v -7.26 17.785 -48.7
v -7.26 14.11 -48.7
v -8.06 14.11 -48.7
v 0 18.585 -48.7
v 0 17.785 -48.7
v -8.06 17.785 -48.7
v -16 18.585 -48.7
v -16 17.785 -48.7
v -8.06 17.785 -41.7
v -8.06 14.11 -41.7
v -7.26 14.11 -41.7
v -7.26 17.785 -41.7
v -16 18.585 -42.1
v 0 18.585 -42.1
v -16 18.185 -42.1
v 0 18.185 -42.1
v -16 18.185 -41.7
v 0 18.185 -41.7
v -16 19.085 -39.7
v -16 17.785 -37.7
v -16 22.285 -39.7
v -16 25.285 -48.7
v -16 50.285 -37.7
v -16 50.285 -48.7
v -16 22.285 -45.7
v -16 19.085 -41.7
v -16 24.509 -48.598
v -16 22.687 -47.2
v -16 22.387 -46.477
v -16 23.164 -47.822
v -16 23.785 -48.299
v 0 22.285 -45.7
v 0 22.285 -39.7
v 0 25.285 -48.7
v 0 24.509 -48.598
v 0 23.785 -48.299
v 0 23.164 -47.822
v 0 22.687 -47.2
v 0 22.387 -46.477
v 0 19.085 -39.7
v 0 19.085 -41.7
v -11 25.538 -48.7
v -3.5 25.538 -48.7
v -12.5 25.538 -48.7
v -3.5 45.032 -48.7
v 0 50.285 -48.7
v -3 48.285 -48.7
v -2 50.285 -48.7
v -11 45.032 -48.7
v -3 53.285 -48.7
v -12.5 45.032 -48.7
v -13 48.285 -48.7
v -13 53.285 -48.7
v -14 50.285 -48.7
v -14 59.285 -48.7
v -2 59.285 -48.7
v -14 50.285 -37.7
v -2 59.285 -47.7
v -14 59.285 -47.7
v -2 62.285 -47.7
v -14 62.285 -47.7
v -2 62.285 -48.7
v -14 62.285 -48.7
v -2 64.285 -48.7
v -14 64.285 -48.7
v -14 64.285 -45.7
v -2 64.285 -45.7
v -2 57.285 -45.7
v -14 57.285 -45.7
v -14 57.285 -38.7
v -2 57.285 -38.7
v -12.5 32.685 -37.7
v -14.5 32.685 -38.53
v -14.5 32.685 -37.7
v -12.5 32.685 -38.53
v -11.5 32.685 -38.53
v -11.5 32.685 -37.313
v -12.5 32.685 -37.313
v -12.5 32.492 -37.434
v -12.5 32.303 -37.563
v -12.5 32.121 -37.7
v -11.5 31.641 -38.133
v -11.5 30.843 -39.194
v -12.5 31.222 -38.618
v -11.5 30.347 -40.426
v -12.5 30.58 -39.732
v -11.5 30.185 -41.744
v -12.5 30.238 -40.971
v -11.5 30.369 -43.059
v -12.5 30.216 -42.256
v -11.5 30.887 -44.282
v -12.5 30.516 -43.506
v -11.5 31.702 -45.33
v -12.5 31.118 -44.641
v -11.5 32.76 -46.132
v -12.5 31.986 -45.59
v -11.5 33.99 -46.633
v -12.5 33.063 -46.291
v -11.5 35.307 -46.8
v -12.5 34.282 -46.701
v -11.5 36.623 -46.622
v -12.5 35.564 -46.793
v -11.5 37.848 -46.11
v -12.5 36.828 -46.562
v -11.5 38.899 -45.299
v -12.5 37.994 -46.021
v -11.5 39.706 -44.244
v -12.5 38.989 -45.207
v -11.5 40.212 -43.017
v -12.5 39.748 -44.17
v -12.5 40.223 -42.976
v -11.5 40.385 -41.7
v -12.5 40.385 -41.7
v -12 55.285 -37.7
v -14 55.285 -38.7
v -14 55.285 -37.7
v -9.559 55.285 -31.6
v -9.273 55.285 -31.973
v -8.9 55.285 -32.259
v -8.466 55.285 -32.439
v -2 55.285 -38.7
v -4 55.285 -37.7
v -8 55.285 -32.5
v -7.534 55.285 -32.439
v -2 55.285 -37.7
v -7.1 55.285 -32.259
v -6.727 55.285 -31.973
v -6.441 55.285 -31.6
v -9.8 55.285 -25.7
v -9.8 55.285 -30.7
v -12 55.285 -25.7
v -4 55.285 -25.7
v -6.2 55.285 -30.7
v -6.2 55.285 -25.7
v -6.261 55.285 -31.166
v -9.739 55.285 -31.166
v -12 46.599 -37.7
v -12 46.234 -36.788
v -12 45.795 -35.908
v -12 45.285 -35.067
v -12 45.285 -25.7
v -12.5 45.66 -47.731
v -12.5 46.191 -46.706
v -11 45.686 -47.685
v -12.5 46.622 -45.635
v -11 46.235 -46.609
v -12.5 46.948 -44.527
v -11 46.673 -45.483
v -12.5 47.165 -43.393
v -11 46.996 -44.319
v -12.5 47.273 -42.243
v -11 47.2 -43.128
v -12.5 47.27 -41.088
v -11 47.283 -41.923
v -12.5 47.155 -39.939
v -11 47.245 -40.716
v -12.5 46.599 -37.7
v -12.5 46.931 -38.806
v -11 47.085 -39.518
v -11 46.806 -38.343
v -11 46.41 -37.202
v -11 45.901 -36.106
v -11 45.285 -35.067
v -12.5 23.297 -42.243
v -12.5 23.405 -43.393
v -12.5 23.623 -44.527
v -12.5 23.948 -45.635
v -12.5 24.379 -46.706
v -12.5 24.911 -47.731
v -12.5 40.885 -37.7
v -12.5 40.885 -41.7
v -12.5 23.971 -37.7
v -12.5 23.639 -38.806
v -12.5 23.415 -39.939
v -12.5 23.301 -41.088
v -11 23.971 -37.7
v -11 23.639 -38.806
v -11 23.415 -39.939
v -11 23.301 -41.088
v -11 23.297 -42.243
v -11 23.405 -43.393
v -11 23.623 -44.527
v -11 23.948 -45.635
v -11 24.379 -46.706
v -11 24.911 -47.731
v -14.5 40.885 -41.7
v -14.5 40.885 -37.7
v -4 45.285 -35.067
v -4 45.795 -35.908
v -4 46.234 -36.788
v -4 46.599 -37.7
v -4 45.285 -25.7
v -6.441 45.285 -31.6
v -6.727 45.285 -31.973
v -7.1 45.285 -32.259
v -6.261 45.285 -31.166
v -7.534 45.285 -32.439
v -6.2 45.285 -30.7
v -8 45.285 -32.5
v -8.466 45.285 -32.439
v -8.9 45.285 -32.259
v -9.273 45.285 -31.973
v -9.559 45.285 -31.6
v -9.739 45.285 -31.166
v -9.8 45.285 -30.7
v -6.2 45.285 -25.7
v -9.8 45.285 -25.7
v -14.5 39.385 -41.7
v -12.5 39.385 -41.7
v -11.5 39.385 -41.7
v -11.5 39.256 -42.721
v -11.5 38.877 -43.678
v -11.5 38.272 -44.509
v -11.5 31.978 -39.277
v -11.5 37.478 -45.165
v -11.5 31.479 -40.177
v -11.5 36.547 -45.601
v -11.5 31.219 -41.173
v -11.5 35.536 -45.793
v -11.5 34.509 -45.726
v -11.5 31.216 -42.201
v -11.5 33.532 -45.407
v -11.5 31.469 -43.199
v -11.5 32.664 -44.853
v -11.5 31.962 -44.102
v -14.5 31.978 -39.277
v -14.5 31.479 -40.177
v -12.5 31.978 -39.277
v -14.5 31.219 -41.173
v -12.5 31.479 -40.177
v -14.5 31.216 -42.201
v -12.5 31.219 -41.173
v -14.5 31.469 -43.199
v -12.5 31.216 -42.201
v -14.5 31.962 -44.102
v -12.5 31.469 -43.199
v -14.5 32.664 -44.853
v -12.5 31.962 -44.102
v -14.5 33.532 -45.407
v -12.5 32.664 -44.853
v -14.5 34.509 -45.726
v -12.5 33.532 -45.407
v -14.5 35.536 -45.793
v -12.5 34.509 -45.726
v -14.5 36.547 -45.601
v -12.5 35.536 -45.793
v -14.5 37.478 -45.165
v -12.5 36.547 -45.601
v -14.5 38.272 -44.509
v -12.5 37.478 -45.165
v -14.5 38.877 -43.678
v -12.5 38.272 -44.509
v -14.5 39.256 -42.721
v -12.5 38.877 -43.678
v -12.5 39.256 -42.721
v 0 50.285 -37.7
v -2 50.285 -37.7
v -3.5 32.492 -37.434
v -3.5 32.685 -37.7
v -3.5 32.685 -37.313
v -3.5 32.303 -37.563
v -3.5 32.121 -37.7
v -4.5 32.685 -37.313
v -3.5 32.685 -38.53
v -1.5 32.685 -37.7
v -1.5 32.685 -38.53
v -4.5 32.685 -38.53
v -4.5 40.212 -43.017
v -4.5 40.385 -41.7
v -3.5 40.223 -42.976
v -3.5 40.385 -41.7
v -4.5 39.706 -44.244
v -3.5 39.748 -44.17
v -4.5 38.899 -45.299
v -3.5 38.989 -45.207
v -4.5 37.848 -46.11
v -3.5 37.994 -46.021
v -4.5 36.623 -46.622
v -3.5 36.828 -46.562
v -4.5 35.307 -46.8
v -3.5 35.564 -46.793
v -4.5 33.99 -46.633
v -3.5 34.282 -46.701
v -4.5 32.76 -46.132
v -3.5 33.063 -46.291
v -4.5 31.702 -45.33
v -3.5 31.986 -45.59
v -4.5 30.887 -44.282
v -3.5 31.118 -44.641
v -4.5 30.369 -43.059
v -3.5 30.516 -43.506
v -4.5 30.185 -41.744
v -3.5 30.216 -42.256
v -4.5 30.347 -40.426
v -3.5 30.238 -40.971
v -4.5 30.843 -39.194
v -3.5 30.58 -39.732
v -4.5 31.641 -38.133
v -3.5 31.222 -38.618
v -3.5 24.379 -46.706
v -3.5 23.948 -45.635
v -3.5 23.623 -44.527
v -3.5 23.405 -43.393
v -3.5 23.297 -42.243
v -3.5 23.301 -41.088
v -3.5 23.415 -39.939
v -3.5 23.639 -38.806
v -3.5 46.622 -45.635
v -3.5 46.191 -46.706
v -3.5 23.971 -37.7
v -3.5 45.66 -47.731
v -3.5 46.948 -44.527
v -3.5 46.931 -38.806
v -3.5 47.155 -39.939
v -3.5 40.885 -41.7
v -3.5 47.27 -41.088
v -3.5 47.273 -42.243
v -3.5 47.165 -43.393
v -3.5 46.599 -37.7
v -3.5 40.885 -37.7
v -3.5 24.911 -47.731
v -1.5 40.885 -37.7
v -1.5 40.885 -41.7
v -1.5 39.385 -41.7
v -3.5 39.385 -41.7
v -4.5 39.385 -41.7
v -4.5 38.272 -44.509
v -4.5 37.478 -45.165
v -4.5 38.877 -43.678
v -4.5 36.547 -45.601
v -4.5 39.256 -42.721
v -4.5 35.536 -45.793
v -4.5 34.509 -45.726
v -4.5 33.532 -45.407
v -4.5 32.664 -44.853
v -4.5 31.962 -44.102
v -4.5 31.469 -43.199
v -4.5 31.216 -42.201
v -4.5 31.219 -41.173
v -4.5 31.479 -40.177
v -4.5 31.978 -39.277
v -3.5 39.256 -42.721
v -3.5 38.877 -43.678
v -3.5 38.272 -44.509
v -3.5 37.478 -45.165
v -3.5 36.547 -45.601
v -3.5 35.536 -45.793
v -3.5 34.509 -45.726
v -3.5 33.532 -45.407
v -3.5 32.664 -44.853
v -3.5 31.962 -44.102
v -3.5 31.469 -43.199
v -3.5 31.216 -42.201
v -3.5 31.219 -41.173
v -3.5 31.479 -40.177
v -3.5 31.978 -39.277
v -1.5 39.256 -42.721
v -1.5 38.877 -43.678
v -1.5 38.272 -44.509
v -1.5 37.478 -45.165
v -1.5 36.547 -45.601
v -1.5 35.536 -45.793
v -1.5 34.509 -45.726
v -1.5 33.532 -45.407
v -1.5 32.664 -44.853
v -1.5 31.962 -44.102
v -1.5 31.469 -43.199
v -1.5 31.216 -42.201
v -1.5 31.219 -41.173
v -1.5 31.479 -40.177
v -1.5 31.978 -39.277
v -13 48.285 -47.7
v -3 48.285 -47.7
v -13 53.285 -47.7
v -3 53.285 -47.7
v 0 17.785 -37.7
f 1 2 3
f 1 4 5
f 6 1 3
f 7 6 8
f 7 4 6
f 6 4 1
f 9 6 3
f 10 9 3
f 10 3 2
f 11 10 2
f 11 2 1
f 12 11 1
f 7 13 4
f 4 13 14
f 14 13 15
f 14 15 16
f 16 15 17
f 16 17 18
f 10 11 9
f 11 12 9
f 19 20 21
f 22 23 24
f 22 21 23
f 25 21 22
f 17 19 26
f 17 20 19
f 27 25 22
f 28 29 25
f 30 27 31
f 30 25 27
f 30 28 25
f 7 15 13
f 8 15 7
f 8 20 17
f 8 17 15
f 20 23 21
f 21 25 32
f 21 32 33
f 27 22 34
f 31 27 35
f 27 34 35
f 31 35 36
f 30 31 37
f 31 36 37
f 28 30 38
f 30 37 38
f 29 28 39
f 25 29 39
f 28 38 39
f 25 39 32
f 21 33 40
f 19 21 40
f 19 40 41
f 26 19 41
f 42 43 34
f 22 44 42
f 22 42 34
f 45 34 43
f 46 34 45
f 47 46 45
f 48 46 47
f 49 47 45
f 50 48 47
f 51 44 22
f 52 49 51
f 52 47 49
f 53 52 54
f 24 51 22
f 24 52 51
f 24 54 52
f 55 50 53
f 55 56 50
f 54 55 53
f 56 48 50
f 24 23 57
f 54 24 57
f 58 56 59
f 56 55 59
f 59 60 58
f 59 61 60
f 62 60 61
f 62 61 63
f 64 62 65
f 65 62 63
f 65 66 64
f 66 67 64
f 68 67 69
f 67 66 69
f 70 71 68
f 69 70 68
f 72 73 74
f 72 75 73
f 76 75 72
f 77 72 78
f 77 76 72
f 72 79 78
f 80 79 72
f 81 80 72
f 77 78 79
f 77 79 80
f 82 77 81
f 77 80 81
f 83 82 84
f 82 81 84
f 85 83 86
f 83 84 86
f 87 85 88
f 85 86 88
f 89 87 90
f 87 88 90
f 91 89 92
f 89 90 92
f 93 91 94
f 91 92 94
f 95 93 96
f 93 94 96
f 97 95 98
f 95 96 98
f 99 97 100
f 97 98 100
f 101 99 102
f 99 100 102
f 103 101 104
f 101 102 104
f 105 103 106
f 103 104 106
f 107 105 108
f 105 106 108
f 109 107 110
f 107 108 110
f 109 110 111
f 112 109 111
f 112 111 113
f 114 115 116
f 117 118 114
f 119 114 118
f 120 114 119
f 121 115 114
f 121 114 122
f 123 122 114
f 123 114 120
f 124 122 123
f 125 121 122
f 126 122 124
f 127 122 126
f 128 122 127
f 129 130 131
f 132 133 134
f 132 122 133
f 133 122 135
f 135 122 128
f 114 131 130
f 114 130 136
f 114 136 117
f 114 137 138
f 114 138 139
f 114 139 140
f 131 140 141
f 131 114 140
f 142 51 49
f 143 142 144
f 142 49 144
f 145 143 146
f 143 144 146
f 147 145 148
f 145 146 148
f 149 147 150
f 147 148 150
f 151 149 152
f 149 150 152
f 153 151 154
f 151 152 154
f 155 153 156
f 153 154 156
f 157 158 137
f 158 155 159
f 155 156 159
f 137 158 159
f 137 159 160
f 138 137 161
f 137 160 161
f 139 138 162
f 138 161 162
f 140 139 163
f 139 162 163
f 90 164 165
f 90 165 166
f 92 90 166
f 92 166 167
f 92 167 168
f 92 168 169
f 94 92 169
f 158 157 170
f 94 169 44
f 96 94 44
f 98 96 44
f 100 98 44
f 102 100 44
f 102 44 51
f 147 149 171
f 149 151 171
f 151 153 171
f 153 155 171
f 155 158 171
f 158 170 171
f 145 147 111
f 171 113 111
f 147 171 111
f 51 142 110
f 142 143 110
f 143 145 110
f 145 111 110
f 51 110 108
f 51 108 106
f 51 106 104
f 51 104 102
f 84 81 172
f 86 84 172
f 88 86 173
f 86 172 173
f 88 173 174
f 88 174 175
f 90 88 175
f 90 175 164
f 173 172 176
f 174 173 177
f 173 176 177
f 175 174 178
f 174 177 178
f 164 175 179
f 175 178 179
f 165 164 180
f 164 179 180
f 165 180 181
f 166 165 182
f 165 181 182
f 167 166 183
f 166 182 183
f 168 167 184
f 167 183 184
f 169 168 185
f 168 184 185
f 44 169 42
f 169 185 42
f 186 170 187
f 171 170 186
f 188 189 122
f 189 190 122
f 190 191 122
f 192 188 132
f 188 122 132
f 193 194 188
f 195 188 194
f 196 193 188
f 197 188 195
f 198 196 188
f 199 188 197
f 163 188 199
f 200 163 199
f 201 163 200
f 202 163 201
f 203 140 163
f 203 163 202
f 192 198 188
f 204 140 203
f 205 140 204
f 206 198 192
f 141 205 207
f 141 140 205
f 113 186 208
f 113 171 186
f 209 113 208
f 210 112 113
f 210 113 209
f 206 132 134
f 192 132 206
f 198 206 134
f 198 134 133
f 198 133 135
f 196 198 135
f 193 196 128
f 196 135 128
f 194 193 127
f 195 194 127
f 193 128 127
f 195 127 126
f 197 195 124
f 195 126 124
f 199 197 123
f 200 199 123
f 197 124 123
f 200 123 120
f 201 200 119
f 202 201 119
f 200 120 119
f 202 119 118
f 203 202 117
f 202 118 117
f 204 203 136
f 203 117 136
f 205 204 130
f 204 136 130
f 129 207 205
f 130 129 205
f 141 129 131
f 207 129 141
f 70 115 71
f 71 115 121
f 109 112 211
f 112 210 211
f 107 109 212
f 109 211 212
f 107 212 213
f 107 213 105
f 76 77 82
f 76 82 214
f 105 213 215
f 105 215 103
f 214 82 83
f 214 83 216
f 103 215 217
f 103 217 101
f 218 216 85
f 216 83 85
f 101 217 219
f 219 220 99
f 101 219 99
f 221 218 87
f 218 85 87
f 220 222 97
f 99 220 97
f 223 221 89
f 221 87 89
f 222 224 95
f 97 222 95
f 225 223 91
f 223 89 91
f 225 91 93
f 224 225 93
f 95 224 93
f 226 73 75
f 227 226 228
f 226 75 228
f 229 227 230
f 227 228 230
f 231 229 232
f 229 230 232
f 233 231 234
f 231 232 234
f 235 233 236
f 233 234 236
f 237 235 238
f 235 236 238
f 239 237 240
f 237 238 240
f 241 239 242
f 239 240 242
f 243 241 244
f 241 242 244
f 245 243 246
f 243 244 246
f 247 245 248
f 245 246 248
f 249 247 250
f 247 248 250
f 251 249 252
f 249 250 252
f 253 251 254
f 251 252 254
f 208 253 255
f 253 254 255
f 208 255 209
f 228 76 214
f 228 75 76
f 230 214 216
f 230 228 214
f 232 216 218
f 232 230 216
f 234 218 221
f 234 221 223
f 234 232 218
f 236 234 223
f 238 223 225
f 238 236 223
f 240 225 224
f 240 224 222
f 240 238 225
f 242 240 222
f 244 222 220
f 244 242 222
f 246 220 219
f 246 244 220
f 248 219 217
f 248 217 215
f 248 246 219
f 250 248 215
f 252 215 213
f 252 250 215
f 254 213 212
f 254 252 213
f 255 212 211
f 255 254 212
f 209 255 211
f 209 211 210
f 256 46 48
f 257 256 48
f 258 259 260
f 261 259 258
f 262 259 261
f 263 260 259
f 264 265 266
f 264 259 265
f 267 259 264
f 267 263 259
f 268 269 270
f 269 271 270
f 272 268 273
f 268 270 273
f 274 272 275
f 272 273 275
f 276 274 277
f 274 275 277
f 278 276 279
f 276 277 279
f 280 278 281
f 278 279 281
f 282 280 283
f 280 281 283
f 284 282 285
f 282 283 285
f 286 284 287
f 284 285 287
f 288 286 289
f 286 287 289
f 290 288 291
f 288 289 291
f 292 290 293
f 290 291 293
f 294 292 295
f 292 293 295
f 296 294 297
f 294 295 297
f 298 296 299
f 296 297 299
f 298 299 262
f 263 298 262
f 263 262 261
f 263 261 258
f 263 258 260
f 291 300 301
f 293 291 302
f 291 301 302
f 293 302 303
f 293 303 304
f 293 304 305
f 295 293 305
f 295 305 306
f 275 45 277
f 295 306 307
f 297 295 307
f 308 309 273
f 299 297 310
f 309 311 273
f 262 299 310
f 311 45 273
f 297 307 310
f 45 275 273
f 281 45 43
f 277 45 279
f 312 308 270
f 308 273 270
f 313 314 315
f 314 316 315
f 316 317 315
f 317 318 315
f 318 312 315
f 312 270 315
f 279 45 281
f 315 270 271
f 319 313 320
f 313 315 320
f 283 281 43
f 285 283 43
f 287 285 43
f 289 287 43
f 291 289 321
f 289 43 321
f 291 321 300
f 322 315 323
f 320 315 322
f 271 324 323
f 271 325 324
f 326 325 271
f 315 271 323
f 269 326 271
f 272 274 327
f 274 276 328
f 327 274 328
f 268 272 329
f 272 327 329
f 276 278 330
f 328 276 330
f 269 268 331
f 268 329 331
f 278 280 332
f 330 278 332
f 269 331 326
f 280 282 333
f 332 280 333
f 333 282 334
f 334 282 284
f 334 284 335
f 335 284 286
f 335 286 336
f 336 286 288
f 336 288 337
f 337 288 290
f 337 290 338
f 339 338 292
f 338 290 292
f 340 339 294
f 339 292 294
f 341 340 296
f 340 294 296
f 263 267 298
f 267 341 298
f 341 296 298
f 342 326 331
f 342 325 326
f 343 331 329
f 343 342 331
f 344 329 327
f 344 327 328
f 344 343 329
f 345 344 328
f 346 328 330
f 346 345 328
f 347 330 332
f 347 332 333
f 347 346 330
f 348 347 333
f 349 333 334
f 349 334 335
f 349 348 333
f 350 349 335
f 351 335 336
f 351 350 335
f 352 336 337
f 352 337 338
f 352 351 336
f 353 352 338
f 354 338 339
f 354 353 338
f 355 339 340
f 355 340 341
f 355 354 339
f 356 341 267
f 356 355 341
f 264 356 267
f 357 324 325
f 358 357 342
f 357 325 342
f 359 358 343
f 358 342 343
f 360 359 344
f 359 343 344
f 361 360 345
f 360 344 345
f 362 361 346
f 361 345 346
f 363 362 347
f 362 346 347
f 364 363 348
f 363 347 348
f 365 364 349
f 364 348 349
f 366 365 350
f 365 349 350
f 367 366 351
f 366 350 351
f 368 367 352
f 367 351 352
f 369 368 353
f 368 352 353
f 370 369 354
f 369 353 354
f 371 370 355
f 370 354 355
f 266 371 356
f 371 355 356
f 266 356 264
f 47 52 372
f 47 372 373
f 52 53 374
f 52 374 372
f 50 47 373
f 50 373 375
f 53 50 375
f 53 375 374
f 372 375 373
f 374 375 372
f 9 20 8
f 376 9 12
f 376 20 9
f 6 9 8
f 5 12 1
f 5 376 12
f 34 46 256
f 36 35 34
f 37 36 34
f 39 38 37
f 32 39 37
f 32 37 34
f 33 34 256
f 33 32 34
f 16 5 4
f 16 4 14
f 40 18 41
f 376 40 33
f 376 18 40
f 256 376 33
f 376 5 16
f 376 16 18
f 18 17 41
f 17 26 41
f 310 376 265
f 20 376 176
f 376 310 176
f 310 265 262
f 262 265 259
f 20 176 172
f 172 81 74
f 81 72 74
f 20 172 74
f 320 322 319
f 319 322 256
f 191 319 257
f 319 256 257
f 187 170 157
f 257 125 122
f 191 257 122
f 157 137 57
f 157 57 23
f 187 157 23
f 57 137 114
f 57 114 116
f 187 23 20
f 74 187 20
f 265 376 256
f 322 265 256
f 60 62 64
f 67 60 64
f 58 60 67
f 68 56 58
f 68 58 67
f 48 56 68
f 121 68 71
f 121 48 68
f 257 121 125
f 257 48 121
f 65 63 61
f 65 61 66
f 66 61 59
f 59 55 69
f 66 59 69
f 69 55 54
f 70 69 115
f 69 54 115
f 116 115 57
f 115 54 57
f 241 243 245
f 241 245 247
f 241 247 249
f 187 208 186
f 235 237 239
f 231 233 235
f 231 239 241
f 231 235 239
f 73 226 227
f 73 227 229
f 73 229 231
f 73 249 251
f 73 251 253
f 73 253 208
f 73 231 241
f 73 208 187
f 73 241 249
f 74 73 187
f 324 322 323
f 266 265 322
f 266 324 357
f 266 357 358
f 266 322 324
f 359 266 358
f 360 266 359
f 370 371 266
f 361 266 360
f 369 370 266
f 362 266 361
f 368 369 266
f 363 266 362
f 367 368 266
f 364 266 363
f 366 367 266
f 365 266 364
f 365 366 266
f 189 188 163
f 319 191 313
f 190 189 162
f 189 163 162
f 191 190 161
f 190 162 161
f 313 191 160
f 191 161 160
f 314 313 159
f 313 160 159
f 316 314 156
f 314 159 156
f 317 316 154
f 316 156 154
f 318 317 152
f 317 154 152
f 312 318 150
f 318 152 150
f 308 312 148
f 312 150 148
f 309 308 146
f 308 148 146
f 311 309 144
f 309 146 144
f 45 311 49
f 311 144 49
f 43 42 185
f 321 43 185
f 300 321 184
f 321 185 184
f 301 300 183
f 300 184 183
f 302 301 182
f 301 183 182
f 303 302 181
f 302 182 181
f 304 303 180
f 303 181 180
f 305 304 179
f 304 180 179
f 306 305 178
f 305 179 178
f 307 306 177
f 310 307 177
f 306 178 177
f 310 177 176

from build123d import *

# Parameters (mm, degrees)
SKETCH_W        = 23
SKETCH_H        = 42
PAD_DEPTH       = 16
SKETCH001_W     = 12
SKETCH001_H     = 32
POCKET_DEPTH    = 16
SKETCH002_W     = 12
SKETCH002_H     = 4
POCKET001_DEPTH = 10
SKETCH003_W     = 6
SKETCH003_H     = 6
POCKET002_DEPTH = 11
SKETCH004_R     = 12
POCKET003_DEPTH = 1.5
SKETCH005_R     = 12
POCKET004_DEPTH = 1.5
SKETCH006_R     = 4.1
POCKET005_DEPTH = 2
SKETCH007_R     = 4.1
POCKET006_DEPTH = 2
SKETCH008_R     = 5.1
SKETCH008_R_2   = 4.1
PAD001_DEPTH    = 1
SKETCH009_R     = 5.1
SKETCH009_R_2   = 4.1
PAD002_DEPTH    = 1
SKETCH010_W     = 6
SKETCH010_H     = 8.2
POCKET007_DEPTH = 3
SKETCH011_W     = 6
SKETCH011_H     = 8.2
POCKET008_DEPTH = 3
SKETCH012_R     = 12
POCKET009_DEPTH = 6
SKETCH013_W     = 5
SKETCH013_H     = 10
POCKET010_DEPTH = 1
POCKET011_DEPTH = 16
SKETCH015_W     = 5
SKETCH015_H     = 2
POCKET012_DEPTH = 11
FILLET_R        = 3
PAD003_DEPTH    = 7
SKETCH017_W     = 0.4
SKETCH017_H     = 16
POCKET013_DEPTH = 0.4
SKETCH018_W     = 10
SKETCH018_H     = 12
PAD004_DEPTH    = 9
SKETCH019_W     = 1
SKETCH019_H     = 3
SKETCH019_W_2   = 7.000006
SKETCH019_H_2   = 7
POCKET014_DEPTH = 14.001


with BuildPart() as part:
    # Sketch → Pad (new body)
    with BuildSketch(Plane.ZY):
        with Locations((-37.200437, 34.285206)):
            Rectangle(SKETCH_W, SKETCH_H)
    extrude(amount=PAD_DEPTH)

    # Sketch001 → Pocket (cut)
    with BuildSketch(Plane.ZY.offset(16)):
        with Locations((-31.700437, 29.285206)):
            Rectangle(SKETCH001_W, SKETCH001_H)
    extrude(amount=-POCKET_DEPTH, mode=Mode.SUBTRACT)

    # Sketch002 → Pocket001 (cut)
    with BuildSketch(Plane(origin=(0, 55.285206, 0), x_dir=(0, 0, -1), z_dir=(0, 1, 0))):
        with Locations((31.700437, 2)):
            Rectangle(SKETCH002_W, SKETCH002_H)
        with Locations((31.700437, 14)):
            Rectangle(SKETCH002_W, SKETCH002_H)
        with BuildLine():
            ThreePointArc((30.700437, 6.2), (32.500437, 8), (30.700437, 9.8))
            Line((25.700437, 9.8), (30.700437, 9.8))
            Line((25.700437, 6.2), (25.700437, 9.8))
            Line((25.700437, 6.2), (30.700437, 6.2))
        make_face()
    extrude(amount=-POCKET001_DEPTH, mode=Mode.SUBTRACT)

    # Sketch003 → Pocket002 (cut)
    with BuildSketch(Plane(origin=(0, 0, -48.700437), x_dir=(0, -1, 0), z_dir=(0, 0, -1))):
        with Locations((-35.285206, 8)):
            Rectangle(SKETCH003_W, SKETCH003_H)
    extrude(amount=-POCKET002_DEPTH, mode=Mode.SUBTRACT)

    # Sketch004 → Pocket003 (cut)
    with BuildSketch(Plane.ZY.offset(5)):
        with Locations((-41.700437, 35.285206)):
            Circle(SKETCH004_R)
    extrude(amount=-POCKET003_DEPTH, mode=Mode.SUBTRACT)

    # Sketch005 → Pocket004 (cut)
    with BuildSketch(Plane(origin=(-11, 0, 0), x_dir=(0, 0, 1), z_dir=(1, 0, 0))):
        with Locations((-41.700437, -35.285206)):
            Circle(SKETCH005_R)
    extrude(amount=-POCKET004_DEPTH, mode=Mode.SUBTRACT)

    # Sketch006 → Pocket005 (cut)
    with BuildSketch(Plane.ZY.offset(3.5)):
        with Locations((-41.700437, 35.285206)):
            Circle(SKETCH006_R)
    extrude(amount=-POCKET005_DEPTH, mode=Mode.SUBTRACT)

    # Sketch007 → Pocket006 (cut)
    with BuildSketch(Plane(origin=(-12.5, 0, 0), x_dir=(0, 0, 1), z_dir=(1, 0, 0))):
        with Locations((-41.700437, -35.285206)):
            Circle(SKETCH007_R)
    extrude(amount=-POCKET006_DEPTH, mode=Mode.SUBTRACT)

    # Sketch008 → Pad001 (new body)
    with BuildSketch(Plane.ZY.offset(3.5)):
        with Locations((-41.700437, 35.285206)):
            Circle(SKETCH008_R)
        with Locations((-41.700437, 35.285206)):
            Circle(SKETCH008_R_2, mode=Mode.SUBTRACT)
    extrude(amount=PAD001_DEPTH)

    # Sketch009 → Pad002 (new body)
    with BuildSketch(Plane(origin=(-12.5, 0, 0), x_dir=(0, 0, 1), z_dir=(1, 0, 0))):
        with Locations((-41.700437, -35.285206)):
            Circle(SKETCH009_R)
        with Locations((-41.700437, -35.285206)):
            Circle(SKETCH009_R_2, mode=Mode.SUBTRACT)
    extrude(amount=PAD002_DEPTH)

    # Sketch010 → Pocket007 (cut)
    with BuildSketch(Plane.ZY.offset(4.5)):
        with Locations((-38.700437, 36.785206)):
            Rectangle(SKETCH010_W, SKETCH010_H)
    extrude(amount=-POCKET007_DEPTH, mode=Mode.SUBTRACT)

    # Sketch011 → Pocket008 (cut)
    with BuildSketch(Plane(origin=(-11.5, 0, 0), x_dir=(0, 0, 1), z_dir=(1, 0, 0))):
        with Locations((-38.700437, -36.785206)):
            Rectangle(SKETCH011_W, SKETCH011_H)
    extrude(amount=-POCKET008_DEPTH, mode=Mode.SUBTRACT)

    # Sketch012 → Pocket009 (cut)
    with BuildSketch(Plane.ZY.offset(11)):
        with Locations((-41.700437, 35.285206)):
            Circle(SKETCH012_R)
    extrude(amount=-POCKET009_DEPTH, mode=Mode.SUBTRACT)

    # Sketch013 → Pocket010 (cut)
    with BuildSketch(Plane(origin=(0, 0, -48.700437), x_dir=(0, -1, 0), z_dir=(0, 0, -1))):
        with Locations((-50.785206, 8)):
            Rectangle(SKETCH013_W, SKETCH013_H)
    extrude(amount=-POCKET010_DEPTH, mode=Mode.SUBTRACT)

    # Sketch014 → Pocket011 (cut)
    with BuildSketch(Plane.ZY.offset(16)):
        Polygon((-37.700437, 13.285206), (-48.700437, 13.285206), (-48.700437, 22.285206), (-39.700437, 22.285206), (-39.700437, 19.085206), (-41.700437, 19.085206), (-41.700437, 17.785206), (-37.700437, 17.785206), align=None)
    extrude(amount=-POCKET011_DEPTH, mode=Mode.SUBTRACT)

    # Sketch015 → Pocket012 (cut)
    with BuildSketch(Plane(origin=(0, 0, -48.700437), x_dir=(0, -1, 0), z_dir=(0, 0, -1))):
        with Locations((-52.785206, 1)):
            Rectangle(SKETCH015_W, SKETCH015_H)
        with Locations((-52.785206, 15)):
            Rectangle(SKETCH015_W, SKETCH015_H)
    extrude(amount=-POCKET012_DEPTH, mode=Mode.SUBTRACT)

    # Fillet
    fillet_edges = [part.edges().sort_by_distance(p)[0] for p in [
        (-8, 22.285206, -48.700437),
    ]]
    fillet(fillet_edges, radius=FILLET_R)

    # Sketch016 → Pad003 (new body)
    with BuildSketch(Plane(origin=(0, 0, -41.700437), x_dir=(0, -1, 0), z_dir=(0, 0, -1))):
        Polygon((-17.785206, 16), (-17.785206, 8.060191), (-14.110042, 8.060191), (-14.110042, 7.260191), (-17.785206, 7.260191), (-17.785206, 0), (-18.585206, 0), (-18.585206, 16), align=None)
    extrude(amount=PAD003_DEPTH)

    # Sketch017 → Pocket013 (cut)
    with BuildSketch(Plane(origin=(0, 18.585206, 0), x_dir=(0, 0, -1), z_dir=(0, 1, 0))):
        with Locations((41.900437, 8)):
            Rectangle(SKETCH017_W, SKETCH017_H)
    extrude(amount=-POCKET013_DEPTH, mode=Mode.SUBTRACT)

    # Sketch018 → Pad004 (new body)
    with BuildSketch(Plane(origin=(0, 55.285206, 0), x_dir=(0, 0, -1), z_dir=(0, 1, 0))):
        with Locations((43.700437, 8)):
            Rectangle(SKETCH018_W, SKETCH018_H)
    extrude(amount=PAD004_DEPTH)

    # Sketch019 → Pocket014 (cut, through all)
    with BuildSketch(Plane.ZY.offset(14)):
        with Locations((-48.200443, 60.785206)):
            Rectangle(SKETCH019_W, SKETCH019_H)
        with Locations((-42.20044, 60.785206)):
            Rectangle(SKETCH019_W_2, SKETCH019_H_2)
    extrude(amount=-POCKET014_DEPTH, mode=Mode.SUBTRACT)


solid = part.part
